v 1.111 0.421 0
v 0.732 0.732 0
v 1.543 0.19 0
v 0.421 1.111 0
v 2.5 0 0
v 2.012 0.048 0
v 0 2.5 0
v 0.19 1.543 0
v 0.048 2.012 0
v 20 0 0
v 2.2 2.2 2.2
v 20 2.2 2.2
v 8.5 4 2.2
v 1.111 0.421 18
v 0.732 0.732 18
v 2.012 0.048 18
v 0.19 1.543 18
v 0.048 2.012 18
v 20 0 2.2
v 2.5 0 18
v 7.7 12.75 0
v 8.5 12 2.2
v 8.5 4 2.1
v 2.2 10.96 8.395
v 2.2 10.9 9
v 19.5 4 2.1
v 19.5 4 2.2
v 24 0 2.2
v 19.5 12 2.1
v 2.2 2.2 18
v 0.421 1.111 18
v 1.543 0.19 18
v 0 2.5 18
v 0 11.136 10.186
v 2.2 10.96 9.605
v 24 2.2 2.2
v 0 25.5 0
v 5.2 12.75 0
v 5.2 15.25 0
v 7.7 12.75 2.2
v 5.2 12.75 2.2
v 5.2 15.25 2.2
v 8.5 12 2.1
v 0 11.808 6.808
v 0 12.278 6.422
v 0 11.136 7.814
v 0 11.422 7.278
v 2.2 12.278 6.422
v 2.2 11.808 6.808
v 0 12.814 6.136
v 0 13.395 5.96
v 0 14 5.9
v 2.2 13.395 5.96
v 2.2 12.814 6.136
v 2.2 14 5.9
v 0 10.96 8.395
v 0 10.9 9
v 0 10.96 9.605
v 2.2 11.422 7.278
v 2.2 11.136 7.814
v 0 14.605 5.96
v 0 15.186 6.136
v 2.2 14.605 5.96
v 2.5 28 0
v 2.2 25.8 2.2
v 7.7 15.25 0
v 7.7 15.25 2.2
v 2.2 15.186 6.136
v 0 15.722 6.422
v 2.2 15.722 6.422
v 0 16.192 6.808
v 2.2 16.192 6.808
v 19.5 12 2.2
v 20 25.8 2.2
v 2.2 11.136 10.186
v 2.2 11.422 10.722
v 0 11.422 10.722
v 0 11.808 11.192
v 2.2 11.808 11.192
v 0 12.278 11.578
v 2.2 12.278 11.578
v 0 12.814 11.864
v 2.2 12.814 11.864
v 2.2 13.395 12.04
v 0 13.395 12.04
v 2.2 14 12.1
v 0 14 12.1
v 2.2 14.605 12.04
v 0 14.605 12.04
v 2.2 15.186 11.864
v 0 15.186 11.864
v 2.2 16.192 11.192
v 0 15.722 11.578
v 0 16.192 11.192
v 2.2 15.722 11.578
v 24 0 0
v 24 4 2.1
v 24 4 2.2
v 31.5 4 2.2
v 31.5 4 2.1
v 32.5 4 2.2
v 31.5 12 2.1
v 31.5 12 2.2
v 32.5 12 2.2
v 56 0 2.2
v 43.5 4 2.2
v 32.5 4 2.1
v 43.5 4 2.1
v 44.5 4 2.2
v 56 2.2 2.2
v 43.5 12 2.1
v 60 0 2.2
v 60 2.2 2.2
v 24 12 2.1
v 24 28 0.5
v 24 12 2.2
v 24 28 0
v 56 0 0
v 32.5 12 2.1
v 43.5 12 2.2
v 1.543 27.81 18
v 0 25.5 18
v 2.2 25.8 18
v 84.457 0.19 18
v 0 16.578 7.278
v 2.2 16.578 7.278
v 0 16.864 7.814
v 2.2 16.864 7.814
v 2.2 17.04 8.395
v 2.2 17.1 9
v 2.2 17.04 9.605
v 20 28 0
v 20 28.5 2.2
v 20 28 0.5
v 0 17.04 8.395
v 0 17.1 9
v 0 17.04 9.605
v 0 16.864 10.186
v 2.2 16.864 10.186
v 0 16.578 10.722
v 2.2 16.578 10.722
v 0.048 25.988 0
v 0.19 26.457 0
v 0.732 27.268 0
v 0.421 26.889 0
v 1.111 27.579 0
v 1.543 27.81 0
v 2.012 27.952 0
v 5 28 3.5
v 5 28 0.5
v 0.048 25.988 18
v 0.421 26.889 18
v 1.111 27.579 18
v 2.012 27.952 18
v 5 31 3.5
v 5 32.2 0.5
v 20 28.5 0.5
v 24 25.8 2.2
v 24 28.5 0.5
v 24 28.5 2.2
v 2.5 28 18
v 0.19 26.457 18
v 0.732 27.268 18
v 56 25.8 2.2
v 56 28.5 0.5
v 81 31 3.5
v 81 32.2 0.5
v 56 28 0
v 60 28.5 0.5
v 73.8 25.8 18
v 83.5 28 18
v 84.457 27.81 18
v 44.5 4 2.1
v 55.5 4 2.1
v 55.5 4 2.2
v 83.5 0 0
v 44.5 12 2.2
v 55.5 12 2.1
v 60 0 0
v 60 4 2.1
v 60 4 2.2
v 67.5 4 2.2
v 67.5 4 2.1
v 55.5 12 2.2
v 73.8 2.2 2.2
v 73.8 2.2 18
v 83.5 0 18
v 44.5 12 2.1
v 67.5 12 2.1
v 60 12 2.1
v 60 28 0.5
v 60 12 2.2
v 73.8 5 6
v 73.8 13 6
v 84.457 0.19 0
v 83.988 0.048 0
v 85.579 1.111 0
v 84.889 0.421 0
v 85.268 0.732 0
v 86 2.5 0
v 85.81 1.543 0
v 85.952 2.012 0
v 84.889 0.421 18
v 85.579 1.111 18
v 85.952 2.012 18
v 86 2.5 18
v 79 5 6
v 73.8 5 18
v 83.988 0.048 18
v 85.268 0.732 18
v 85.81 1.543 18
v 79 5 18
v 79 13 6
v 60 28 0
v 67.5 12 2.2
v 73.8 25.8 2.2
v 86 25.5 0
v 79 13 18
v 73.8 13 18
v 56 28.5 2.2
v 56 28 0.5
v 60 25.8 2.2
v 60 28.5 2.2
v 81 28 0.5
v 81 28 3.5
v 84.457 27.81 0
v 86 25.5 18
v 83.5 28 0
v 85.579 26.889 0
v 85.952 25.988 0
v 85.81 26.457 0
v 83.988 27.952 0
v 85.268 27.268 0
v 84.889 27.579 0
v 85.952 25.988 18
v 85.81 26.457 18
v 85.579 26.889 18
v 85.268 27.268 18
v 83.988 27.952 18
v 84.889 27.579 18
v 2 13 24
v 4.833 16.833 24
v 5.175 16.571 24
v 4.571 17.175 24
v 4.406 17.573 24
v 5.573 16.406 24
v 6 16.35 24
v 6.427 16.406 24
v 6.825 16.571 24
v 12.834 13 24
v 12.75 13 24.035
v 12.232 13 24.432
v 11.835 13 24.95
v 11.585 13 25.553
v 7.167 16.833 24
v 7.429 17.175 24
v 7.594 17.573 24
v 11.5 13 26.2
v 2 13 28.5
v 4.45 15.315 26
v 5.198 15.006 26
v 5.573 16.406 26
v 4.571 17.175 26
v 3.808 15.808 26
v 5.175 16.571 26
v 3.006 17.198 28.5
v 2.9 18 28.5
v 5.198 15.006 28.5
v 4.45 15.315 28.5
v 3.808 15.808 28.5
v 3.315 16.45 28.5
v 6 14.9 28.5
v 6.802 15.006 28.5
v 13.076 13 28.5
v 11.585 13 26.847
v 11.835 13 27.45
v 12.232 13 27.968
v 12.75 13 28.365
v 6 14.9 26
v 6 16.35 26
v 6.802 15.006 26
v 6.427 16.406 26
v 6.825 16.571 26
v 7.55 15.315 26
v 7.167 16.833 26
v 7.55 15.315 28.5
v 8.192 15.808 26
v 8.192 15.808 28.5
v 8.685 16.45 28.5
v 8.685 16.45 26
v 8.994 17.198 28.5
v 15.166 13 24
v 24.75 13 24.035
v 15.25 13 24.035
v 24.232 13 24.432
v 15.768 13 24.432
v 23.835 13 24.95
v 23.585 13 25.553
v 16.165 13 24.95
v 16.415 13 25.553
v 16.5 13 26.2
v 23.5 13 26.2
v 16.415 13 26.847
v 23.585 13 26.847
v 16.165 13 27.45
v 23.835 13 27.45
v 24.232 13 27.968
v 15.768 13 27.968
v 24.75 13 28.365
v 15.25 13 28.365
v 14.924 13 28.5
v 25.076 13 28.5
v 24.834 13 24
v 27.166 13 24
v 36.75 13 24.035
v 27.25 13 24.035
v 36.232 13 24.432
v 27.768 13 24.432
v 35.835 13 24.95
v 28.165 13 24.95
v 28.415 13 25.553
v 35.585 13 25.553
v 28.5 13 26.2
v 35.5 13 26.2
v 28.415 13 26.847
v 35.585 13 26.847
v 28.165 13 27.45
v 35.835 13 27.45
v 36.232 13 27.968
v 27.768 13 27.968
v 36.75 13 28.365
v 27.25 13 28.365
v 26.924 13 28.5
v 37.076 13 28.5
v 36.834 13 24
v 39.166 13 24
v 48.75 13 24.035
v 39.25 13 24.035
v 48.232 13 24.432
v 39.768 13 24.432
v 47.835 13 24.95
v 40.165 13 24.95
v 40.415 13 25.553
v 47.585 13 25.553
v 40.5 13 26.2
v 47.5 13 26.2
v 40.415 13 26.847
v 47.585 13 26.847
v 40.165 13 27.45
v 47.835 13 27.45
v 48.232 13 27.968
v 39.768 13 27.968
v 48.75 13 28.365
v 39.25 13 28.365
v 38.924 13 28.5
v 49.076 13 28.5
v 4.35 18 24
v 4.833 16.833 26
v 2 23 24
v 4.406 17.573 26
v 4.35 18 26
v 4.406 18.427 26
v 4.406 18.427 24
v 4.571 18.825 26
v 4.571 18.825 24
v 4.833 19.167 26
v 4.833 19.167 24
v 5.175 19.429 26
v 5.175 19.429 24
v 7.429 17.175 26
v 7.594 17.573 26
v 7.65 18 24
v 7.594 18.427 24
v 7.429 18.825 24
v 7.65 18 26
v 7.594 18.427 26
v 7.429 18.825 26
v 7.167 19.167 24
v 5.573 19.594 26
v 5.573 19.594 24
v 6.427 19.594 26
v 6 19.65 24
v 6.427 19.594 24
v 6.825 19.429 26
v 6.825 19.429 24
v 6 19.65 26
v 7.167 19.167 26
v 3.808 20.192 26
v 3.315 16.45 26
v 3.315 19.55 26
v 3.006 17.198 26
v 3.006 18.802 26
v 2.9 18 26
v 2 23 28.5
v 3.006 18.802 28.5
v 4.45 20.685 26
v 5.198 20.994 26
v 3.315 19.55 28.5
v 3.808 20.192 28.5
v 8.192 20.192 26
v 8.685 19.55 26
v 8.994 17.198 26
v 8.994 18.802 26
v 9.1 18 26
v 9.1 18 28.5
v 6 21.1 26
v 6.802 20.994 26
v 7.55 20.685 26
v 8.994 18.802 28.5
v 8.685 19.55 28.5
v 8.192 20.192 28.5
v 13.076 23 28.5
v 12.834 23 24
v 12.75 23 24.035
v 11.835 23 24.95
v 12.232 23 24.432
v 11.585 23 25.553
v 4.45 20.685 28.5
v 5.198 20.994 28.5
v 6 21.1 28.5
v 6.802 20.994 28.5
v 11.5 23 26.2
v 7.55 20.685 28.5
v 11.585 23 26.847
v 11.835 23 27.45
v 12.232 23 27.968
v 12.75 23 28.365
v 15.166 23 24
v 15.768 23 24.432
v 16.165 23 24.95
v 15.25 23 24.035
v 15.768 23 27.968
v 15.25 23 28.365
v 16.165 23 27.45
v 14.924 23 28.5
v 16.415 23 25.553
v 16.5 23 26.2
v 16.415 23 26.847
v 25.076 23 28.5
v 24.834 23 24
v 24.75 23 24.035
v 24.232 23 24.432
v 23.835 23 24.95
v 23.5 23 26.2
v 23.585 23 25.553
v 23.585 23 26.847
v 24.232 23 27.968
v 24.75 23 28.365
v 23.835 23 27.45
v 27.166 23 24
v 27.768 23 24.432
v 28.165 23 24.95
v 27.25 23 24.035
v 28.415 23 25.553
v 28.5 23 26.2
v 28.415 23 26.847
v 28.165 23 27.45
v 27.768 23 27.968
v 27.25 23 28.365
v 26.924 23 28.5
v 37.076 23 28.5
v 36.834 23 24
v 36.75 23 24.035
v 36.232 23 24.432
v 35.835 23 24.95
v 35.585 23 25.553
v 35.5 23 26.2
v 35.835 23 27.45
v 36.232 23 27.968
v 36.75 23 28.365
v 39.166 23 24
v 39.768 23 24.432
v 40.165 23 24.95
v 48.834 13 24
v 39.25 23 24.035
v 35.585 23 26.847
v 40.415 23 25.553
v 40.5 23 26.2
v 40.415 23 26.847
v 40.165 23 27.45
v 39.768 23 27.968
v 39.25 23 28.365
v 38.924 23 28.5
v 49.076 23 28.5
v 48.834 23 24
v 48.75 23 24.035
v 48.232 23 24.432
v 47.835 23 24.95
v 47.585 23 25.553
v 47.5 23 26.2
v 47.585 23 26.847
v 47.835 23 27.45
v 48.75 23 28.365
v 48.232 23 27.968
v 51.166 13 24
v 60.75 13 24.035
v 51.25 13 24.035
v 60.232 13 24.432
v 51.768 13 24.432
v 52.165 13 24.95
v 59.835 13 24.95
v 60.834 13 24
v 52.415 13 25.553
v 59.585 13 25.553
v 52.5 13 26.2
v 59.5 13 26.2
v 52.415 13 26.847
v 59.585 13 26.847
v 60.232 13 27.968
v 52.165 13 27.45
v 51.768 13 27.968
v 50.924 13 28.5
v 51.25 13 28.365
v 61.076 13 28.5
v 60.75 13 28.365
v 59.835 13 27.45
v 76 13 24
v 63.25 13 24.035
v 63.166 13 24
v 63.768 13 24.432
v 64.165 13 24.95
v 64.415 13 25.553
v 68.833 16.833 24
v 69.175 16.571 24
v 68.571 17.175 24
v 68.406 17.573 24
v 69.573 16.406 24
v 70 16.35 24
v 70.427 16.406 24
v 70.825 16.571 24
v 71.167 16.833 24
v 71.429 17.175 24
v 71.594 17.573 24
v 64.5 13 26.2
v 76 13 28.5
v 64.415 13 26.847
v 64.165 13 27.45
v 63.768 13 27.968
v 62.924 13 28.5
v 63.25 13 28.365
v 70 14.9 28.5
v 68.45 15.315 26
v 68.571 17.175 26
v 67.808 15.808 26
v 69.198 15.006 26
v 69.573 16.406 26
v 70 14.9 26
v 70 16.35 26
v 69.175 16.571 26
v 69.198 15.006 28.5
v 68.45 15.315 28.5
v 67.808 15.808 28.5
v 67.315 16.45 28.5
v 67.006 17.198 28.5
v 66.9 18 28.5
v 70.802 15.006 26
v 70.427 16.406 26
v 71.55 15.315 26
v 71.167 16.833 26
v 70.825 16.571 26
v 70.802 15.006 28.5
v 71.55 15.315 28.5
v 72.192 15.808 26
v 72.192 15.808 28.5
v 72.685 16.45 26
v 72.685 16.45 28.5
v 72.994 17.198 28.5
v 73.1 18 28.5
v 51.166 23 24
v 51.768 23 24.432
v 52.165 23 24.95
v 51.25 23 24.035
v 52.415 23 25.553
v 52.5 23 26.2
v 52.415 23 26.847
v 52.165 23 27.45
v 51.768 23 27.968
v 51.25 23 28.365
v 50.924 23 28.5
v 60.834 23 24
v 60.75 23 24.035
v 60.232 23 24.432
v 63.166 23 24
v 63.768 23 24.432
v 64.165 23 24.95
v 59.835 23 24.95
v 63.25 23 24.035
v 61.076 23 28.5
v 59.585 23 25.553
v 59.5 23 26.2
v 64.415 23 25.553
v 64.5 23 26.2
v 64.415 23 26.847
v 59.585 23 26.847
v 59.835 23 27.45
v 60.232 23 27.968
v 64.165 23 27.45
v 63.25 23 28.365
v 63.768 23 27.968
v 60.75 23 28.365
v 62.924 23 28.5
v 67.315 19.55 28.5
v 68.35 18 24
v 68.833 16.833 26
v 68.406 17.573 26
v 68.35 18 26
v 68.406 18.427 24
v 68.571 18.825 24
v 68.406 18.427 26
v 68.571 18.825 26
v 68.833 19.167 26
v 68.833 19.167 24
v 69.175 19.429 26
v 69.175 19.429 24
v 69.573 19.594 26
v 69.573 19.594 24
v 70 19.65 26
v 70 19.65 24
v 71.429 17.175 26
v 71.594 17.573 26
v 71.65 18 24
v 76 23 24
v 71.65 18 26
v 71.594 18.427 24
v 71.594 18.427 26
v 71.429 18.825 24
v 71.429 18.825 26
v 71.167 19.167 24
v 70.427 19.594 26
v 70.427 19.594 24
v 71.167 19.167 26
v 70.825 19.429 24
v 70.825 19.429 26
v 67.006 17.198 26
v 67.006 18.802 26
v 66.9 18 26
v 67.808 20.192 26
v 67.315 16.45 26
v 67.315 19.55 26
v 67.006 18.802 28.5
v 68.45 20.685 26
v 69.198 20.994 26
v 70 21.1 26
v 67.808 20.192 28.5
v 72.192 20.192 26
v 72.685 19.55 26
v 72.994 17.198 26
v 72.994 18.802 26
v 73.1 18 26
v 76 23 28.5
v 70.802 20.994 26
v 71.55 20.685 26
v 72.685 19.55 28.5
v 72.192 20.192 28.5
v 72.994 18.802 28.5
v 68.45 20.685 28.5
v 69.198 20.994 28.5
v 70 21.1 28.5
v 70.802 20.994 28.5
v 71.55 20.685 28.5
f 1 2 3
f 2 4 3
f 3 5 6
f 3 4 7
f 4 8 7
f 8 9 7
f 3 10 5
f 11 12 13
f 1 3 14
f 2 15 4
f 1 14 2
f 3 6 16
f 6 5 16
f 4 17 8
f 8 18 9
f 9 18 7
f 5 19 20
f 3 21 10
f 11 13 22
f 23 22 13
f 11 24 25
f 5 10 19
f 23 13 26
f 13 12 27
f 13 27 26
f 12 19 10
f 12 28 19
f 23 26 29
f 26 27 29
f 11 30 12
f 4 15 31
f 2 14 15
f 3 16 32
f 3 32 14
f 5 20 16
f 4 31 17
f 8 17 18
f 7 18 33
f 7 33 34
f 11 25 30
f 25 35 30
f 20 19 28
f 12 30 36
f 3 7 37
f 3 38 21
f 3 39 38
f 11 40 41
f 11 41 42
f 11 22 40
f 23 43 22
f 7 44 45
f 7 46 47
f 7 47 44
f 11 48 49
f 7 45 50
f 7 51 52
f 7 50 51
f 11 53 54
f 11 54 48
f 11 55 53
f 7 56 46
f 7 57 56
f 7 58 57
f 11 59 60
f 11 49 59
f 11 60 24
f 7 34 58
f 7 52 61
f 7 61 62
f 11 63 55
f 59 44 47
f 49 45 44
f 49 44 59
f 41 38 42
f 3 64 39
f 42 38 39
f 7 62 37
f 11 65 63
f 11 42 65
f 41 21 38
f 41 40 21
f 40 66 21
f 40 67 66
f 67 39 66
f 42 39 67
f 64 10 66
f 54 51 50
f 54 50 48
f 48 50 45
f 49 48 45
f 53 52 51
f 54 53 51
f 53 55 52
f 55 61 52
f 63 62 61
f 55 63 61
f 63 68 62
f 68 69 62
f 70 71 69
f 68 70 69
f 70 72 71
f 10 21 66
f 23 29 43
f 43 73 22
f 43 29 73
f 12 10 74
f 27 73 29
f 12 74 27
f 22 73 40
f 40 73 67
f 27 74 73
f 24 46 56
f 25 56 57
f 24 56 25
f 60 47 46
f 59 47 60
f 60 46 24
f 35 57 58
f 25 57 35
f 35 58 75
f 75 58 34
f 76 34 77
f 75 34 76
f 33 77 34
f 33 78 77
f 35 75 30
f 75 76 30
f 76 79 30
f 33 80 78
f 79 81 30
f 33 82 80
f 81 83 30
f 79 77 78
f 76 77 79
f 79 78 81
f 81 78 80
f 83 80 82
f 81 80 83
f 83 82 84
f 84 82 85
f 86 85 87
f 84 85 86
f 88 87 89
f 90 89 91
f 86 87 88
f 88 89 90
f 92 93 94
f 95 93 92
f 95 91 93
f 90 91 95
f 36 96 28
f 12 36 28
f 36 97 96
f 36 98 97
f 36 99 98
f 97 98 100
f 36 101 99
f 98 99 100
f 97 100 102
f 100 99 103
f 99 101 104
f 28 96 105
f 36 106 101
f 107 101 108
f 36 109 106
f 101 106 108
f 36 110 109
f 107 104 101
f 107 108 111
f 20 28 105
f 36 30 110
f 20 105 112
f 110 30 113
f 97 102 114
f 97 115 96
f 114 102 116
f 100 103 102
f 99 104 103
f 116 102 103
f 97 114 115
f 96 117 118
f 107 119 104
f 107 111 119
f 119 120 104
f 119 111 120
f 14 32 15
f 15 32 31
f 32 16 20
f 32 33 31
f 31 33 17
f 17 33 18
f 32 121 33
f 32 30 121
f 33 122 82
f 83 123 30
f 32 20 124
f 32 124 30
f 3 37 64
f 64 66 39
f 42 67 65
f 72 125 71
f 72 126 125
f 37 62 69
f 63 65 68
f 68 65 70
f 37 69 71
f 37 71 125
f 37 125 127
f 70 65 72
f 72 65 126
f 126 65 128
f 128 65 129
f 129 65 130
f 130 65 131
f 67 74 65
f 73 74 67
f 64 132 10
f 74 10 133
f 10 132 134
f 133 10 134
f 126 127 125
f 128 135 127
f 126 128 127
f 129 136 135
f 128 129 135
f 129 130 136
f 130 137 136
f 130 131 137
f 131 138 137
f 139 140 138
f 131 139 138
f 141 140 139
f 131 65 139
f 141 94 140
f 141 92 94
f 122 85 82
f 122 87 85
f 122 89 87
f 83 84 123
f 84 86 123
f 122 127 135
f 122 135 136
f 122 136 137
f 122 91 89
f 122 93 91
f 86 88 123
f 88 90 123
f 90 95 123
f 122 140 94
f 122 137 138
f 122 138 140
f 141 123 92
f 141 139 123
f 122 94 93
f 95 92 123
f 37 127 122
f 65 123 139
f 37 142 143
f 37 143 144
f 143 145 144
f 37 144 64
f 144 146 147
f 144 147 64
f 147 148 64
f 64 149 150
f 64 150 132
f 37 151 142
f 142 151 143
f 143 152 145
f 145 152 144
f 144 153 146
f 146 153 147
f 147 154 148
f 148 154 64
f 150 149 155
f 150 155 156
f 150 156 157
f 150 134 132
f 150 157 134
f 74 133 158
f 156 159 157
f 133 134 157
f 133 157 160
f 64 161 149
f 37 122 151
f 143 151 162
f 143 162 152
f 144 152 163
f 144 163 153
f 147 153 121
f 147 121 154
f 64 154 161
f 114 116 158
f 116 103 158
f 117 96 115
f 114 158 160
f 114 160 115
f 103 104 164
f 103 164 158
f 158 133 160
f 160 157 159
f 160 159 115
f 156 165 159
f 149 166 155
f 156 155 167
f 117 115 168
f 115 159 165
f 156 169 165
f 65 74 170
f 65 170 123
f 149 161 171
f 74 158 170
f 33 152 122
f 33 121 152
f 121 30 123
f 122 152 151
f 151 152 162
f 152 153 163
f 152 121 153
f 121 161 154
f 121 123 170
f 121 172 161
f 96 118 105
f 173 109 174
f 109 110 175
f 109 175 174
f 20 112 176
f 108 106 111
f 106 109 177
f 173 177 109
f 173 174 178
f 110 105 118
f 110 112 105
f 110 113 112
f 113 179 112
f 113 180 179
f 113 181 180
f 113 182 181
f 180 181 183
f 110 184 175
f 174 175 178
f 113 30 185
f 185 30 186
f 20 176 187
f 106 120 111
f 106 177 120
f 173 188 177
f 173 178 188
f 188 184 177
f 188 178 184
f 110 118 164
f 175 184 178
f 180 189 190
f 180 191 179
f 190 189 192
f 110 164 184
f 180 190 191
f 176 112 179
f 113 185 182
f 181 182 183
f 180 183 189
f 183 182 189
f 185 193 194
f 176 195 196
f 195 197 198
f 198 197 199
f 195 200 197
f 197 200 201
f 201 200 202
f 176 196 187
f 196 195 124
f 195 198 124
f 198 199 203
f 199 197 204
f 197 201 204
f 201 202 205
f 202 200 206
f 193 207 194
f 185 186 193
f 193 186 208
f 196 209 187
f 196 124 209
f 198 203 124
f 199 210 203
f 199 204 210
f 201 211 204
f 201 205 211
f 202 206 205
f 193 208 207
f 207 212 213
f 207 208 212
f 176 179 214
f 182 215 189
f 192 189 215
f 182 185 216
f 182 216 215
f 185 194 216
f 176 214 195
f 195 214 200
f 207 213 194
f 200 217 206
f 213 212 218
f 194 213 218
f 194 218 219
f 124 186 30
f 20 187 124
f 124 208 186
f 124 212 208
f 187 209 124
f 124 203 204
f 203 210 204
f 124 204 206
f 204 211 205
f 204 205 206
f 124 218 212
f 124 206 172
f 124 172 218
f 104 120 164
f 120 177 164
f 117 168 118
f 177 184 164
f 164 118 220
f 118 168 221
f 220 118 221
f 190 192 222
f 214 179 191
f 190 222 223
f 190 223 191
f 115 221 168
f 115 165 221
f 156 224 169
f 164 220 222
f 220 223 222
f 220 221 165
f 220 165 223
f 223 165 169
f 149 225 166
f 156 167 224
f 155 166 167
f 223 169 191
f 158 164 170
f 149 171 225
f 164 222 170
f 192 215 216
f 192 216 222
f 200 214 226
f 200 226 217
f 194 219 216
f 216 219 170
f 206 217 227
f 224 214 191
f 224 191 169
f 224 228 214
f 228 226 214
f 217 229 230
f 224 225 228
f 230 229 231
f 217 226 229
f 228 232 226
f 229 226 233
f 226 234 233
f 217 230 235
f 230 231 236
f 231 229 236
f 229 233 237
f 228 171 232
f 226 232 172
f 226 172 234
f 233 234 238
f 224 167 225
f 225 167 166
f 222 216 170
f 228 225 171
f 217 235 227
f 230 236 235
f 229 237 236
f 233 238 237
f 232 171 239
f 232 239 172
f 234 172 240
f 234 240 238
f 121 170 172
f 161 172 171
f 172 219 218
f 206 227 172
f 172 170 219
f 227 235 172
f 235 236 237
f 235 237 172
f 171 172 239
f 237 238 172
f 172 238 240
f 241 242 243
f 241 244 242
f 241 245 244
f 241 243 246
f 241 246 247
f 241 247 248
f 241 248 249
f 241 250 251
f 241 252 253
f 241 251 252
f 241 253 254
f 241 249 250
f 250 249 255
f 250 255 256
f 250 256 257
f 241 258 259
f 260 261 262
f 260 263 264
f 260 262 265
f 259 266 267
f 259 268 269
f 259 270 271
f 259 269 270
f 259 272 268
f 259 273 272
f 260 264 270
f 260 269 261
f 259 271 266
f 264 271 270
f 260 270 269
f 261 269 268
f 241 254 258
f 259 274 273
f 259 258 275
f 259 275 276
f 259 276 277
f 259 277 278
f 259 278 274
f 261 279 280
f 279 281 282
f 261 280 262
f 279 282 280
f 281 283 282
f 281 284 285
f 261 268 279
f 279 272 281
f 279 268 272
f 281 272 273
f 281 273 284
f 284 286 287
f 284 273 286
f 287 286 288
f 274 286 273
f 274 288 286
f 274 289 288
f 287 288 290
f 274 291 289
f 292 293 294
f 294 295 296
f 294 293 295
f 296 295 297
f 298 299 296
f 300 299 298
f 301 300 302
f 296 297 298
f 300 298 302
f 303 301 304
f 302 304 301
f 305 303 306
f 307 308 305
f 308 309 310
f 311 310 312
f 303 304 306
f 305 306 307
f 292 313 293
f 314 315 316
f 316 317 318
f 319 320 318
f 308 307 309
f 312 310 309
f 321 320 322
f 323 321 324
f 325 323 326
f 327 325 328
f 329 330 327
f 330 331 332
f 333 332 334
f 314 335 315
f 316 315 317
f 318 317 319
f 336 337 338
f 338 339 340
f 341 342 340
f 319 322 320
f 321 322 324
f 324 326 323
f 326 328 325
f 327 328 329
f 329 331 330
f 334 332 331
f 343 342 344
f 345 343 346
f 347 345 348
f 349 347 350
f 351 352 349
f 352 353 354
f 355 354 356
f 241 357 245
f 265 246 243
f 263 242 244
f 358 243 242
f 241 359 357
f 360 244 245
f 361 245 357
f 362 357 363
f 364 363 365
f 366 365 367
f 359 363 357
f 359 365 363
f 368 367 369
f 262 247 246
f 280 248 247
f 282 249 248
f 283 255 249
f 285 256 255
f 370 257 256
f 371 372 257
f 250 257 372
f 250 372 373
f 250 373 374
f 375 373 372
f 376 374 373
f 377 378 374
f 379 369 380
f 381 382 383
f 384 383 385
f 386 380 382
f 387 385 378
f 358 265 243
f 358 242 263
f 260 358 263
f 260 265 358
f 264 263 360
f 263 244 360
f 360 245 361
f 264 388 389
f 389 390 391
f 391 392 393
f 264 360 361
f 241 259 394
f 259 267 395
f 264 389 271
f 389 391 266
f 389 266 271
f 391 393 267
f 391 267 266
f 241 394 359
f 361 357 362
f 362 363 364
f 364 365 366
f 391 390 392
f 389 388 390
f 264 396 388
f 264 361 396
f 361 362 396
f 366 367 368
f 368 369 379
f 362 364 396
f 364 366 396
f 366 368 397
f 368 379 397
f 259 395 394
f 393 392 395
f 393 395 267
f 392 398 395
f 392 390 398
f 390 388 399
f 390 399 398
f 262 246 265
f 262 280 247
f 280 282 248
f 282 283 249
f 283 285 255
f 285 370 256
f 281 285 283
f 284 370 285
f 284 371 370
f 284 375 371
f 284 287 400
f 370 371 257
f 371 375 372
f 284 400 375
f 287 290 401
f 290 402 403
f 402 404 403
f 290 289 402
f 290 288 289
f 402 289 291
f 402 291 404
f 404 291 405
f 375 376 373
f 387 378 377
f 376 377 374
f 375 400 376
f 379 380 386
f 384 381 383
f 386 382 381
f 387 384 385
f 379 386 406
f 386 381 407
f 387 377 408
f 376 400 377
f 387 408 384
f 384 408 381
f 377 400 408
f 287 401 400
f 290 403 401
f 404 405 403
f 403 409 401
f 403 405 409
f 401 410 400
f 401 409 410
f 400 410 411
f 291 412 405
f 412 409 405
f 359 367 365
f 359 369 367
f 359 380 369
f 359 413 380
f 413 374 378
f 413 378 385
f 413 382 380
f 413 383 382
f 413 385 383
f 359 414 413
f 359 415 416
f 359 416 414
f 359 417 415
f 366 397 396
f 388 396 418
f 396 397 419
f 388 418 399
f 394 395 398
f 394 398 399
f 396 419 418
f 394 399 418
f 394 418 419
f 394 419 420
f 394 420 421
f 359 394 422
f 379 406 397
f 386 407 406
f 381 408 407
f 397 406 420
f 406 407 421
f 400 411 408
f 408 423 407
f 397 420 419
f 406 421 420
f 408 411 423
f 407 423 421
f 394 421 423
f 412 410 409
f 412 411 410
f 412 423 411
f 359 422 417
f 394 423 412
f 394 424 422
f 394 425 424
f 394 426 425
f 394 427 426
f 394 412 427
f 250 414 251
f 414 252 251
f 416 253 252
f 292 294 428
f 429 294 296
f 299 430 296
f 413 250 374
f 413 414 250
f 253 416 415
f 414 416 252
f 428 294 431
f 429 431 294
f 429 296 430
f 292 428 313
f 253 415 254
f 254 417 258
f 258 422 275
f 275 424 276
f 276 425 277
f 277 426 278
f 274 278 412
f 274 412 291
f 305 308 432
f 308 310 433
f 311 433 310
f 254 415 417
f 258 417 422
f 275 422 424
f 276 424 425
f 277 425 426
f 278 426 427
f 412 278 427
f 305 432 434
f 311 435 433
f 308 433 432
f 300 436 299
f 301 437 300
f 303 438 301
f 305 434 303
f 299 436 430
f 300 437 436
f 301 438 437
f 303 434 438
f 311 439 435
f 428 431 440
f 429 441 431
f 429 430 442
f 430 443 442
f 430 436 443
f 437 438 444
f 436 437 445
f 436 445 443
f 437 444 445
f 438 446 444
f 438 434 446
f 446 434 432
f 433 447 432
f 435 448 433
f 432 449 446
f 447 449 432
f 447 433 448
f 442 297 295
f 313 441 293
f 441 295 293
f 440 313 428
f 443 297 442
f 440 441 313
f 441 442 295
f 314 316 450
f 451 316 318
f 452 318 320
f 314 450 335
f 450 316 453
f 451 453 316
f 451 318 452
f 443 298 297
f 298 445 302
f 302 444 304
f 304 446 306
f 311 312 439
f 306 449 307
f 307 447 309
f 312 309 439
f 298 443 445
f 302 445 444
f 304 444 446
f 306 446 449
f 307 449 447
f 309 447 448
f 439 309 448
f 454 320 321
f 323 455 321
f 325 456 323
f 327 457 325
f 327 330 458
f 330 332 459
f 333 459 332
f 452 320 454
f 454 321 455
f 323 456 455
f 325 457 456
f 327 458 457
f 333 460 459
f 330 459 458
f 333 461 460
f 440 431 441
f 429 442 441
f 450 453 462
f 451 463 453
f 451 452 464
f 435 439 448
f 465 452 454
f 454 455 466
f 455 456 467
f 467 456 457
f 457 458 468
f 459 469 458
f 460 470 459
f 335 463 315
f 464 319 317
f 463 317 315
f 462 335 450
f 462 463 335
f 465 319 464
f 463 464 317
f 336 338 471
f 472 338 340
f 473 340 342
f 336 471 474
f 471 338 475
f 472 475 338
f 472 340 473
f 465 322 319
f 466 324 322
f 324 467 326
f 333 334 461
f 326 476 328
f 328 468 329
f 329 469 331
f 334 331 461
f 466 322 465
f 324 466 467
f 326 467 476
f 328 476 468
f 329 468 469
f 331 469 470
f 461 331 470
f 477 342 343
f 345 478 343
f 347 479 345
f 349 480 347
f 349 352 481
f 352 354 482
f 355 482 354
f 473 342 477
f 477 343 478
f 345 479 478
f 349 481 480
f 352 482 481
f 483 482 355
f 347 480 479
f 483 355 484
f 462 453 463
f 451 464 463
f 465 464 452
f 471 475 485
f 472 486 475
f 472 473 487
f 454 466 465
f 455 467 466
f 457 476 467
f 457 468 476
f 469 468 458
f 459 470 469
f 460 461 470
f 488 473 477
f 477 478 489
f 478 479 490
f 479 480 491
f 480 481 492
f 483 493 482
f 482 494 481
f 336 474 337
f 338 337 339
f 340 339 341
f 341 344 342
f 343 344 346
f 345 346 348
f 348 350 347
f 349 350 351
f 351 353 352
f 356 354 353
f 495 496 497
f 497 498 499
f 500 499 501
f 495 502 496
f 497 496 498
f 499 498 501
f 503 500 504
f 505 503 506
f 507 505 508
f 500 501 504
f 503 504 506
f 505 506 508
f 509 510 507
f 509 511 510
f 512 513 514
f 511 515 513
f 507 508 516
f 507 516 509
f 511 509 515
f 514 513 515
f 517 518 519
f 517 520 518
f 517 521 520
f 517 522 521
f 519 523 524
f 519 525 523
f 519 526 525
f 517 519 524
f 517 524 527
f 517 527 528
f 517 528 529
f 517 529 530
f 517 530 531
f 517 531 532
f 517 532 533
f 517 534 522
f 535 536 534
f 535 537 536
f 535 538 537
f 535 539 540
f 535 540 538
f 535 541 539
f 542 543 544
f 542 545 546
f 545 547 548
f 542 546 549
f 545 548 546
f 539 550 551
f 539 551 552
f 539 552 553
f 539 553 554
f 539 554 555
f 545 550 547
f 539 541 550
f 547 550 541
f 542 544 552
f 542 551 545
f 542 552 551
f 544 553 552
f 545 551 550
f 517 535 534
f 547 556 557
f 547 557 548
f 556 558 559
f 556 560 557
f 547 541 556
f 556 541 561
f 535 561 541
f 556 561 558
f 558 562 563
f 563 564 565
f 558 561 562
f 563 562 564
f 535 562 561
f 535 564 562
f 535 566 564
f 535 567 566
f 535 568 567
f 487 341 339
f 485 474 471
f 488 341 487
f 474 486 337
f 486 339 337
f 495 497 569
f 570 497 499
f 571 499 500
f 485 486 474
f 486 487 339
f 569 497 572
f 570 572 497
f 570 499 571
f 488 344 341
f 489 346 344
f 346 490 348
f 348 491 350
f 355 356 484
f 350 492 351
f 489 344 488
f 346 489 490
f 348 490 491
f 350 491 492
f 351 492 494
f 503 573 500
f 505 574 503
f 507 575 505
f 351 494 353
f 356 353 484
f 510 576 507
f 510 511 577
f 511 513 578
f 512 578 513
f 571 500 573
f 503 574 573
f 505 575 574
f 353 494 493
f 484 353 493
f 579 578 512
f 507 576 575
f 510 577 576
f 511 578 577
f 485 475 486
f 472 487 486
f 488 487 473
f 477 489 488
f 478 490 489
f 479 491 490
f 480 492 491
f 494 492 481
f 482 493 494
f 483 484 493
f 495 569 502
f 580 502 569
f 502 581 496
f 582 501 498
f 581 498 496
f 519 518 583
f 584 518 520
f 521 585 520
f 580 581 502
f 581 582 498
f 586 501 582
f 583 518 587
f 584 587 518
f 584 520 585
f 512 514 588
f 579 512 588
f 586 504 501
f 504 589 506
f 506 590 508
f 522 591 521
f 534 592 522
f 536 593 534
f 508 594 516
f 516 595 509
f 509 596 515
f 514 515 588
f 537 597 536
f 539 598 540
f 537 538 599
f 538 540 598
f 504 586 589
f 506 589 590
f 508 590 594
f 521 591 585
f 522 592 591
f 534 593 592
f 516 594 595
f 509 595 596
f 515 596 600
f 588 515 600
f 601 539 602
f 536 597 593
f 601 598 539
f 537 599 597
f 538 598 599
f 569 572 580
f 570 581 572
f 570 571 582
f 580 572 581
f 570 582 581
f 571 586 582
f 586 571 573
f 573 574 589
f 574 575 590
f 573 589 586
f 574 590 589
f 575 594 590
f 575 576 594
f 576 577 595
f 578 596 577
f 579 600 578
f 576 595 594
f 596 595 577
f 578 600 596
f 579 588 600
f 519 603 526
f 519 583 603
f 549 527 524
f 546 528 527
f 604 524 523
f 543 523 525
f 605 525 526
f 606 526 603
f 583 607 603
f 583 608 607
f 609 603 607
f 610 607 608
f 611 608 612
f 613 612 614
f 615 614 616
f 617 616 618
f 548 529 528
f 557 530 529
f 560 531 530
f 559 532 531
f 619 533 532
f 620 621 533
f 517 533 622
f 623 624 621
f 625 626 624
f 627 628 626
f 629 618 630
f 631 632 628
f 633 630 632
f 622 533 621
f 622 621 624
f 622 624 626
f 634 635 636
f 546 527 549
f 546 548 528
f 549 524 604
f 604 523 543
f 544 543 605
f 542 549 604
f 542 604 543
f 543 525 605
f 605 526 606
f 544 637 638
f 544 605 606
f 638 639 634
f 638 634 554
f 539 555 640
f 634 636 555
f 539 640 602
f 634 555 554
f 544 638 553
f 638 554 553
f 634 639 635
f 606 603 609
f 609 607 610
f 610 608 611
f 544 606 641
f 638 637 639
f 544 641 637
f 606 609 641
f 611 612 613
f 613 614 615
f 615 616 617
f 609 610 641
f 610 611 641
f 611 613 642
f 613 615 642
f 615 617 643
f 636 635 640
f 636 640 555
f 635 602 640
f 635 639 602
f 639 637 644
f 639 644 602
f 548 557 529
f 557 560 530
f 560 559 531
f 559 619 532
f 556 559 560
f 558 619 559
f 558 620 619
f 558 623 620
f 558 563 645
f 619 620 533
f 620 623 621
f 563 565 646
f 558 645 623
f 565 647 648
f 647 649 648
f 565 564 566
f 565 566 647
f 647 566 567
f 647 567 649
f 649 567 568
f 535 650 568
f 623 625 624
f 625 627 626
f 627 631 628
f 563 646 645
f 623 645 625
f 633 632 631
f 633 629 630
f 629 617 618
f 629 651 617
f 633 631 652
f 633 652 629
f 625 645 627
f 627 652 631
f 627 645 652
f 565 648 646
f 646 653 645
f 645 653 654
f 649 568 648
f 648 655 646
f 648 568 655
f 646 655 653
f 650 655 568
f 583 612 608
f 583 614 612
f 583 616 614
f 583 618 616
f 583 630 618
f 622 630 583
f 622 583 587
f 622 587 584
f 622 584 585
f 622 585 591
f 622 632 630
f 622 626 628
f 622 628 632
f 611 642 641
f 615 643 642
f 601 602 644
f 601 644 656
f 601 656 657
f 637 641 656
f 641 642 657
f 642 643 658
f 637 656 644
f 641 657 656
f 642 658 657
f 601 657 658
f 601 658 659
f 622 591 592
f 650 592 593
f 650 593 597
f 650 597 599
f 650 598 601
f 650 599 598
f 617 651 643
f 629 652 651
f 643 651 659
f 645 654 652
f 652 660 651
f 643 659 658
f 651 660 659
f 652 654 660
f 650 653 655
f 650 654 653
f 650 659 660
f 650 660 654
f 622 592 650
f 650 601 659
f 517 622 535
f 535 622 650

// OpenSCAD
// =============================================================================
// OpenMotorBridge - Cockpit Breakout Satellite Housing
// =============================================================================
// File: hardware/cad/scad/04_front_node/cockpit_breakout_block.scad
// Description: Modular 3D-printed distribution bar for handlebar & cockpit.
//              Houses 5x USB-C female receptacles (Phone 20W, Dongle, Host,
//              Cam 5V, Navi 5V), PTT screw terminal, M3 anti-vibration strain
//              clamp, and lateral dovetail rail for fairing interlock.
// =============================================================================

include <../00_common/parameters.scad>;

part = "all"; // [all, body, clamp]

// Main dimensions
COCKPIT_BLOCK_L = 86.0;
COCKPIT_BLOCK_W = 28.0;
COCKPIT_BLOCK_H = 18.0;
WALL            = 2.2;

// Dovetail interlocking parameters (standardized for both satellites)
DOVETAIL_W_BOTTOM = 6.0;
DOVETAIL_W_TOP    = 8.4;
DOVETAIL_H        = 3.0;
DOVETAIL_L        = COCKPIT_BLOCK_L - 10.0;

module dovetail_male(length = DOVETAIL_L) {
    linear_extrude(height = length) {
        polygon(points=[
            [-DOVETAIL_W_BOTTOM/2, 0],
            [ DOVETAIL_W_BOTTOM/2, 0],
            [ DOVETAIL_W_TOP/2,    DOVETAIL_H],
            [-DOVETAIL_W_TOP/2,    DOVETAIL_H]
        ]);
    }
}

module dovetail_female(length = DOVETAIL_L + 1.0, clearance = 0.25) {
    linear_extrude(height = length) {
        polygon(points=[
            [-(DOVETAIL_W_BOTTOM/2 + clearance), -0.1],
            [ (DOVETAIL_W_BOTTOM/2 + clearance), -0.1],
            [ (DOVETAIL_W_TOP/2 + clearance),    DOVETAIL_H + 0.1],
            [-(DOVETAIL_W_TOP/2 + clearance),    DOVETAIL_H + 0.1]
        ]);
    }
}

// 1. Cockpit Breakout Main Body
module cockpit_breakout_body() {
    color([0.22, 0.22, 0.24]) // Charcoal ASA / MJF PA12
    difference() {
        union() {
            // Main solid rounded housing block
            hull() {
                translate([2.5, 2.5, 0])
                    cylinder(r=2.5, h=COCKPIT_BLOCK_H, center=false, $fn=32);
                translate([COCKPIT_BLOCK_L - 2.5, 2.5, 0])
                    cylinder(r=2.5, h=COCKPIT_BLOCK_H, center=false, $fn=32);
                translate([2.5, COCKPIT_BLOCK_W - 2.5, 0])
                    cylinder(r=2.5, h=COCKPIT_BLOCK_H, center=false, $fn=32);
                translate([COCKPIT_BLOCK_L - 2.5, COCKPIT_BLOCK_W - 2.5, 0])
                    cylinder(r=2.5, h=COCKPIT_BLOCK_H, center=false, $fn=32);
            }
            
            // Lateral Male Dovetail Rail along North edge (Y = COCKPIT_BLOCK_W)
            translate([COCKPIT_BLOCK_L - 5.0, COCKPIT_BLOCK_W, 3.5])
                rotate([0, -90, 0])
                    rotate([0, 0, 90])
                        dovetail_male();
        }
        
        // Internal wiring cavity
        translate([WALL, WALL, WALL])
            cube(size=[COCKPIT_BLOCK_L - 2*WALL - 10.0, COCKPIT_BLOCK_W - 2*WALL, COCKPIT_BLOCK_H], center=false);
            
        // Cable Inflow Gland on West Flank (Ø 6.2 mm bore for 16-wire shielded round harness)
        translate([-0.5, COCKPIT_BLOCK_W / 2.0, COCKPIT_BLOCK_H / 2.0])
            rotate([0, 90, 0])
                cylinder(r=3.1, h=WALL + 2.0, center=false, $fn=32);
                
        // Internal strain-relief zip-tie channel across cable entry
        translate([WALL + 3.0, COCKPIT_BLOCK_W/2.0 - 1.25, 0])
            cube(size=[2.5, 2.5, COCKPIT_BLOCK_H - 2.0], center=false);
            
        // 5x USB-C Receptacle Face Pockets (Top face Z = COCKPIT_BLOCK_H)
        // Spaced along X at 14.0, 26.0, 38.0, 50.0, 62.0 mm
        usb_x = [14.0, 26.0, 38.0, 50.0, 62.0];
        for (ux = usb_x) {
            // Cutout for USB-C female port PCB / flange (9.2 x 3.6 mm)
            translate([ux - 4.6, 6.0, COCKPIT_BLOCK_H - 12.0])
                cube(size=[9.2, 3.6, 12.5], center=false);
                
            // Solder lead / wire clearance underneath
            translate([ux - 5.5, 4.0, WALL - 0.1])
                cube(size=[11.0, 8.0, COCKPIT_BLOCK_H - 10.0], center=false);
        }
        
        // PTT 2-Pin Screw/Spring Terminal cutout at X = 74.0 mm
        translate([74.0 - 5.0, 5.0, COCKPIT_BLOCK_H - 12.0])
            cube(size=[10.0, 8.0, 12.5], center=false);
            
        // 2x M3 Clamping Screw Pilot Holes for strain-relief clamp (X = 6.0 and X = 70.0)
        translate([6.0, 18.0, COCKPIT_BLOCK_H - 10.0])
            cylinder(r=M3_PILOT_HOLE_R, h=10.5, center=false, $fn=24);
        translate([70.0, 18.0, COCKPIT_BLOCK_H - 10.0])
            cylinder(r=M3_PILOT_HOLE_R, h=10.5, center=false, $fn=24);
            
        // 2x Zip-Tie Channels on bottom for handlebar / tube fastening (4.0 x 2.2 mm)
        translate([20.0, -0.5, 0])
            cube(size=[4.0, COCKPIT_BLOCK_W + 1.0, 2.2], center=false);
        translate([56.0, -0.5, 0])
            cube(size=[4.0, COCKPIT_BLOCK_W + 1.0, 2.2], center=false);
    }
}

// 2. Mechanical Anti-Vibration Strain-Relief Clamping Bar
module cockpit_breakout_clamp() {
    color([0.30, 0.30, 0.32]) // Stiff clamp bar
    difference() {
        // Main clamping bar spanning over the 5 USB-C plug necks
        translate([2.0, 13.0, 0])
            cube(size=[74.0, 10.0, 4.5], center=false);
            
        // 2x M3 Clearance Holes
        translate([6.0, 18.0, -0.5])
            cylinder(r=M3_SCREW_HOLE_R, h=6.0, center=false, $fn=24);
        translate([70.0, 18.0, -0.5])
            cylinder(r=M3_SCREW_HOLE_R, h=6.0, center=false, $fn=24);
            
        // M3 Counterbore pockets for DIN 912 socket head screws
        translate([6.0, 18.0, 2.0])
            cylinder(r=3.1, h=3.0, center=false, $fn=24);
        translate([70.0, 18.0, 2.0])
            cylinder(r=3.1, h=3.0, center=false, $fn=24);
            
        // 5x Semicircular clamping grooves for USB-C cable collars
        usb_x = [14.0, 26.0, 38.0, 50.0, 62.0];
        for (ux = usb_x) {
            translate([ux, 13.0 - 0.1, 2.2])
                rotate([-90, 0, 0])
                    cylinder(r=2.5, h=10.5, center=false, $fn=24);
        }
    }
}

// Assembly / Component Selector
if (part == "body") {
    cockpit_breakout_body();
} else if (part == "clamp") {
    cockpit_breakout_clamp();
} else {
    cockpit_breakout_body();
    translate([0, 0, COCKPIT_BLOCK_H + 6.0])
        cockpit_breakout_clamp();
}
